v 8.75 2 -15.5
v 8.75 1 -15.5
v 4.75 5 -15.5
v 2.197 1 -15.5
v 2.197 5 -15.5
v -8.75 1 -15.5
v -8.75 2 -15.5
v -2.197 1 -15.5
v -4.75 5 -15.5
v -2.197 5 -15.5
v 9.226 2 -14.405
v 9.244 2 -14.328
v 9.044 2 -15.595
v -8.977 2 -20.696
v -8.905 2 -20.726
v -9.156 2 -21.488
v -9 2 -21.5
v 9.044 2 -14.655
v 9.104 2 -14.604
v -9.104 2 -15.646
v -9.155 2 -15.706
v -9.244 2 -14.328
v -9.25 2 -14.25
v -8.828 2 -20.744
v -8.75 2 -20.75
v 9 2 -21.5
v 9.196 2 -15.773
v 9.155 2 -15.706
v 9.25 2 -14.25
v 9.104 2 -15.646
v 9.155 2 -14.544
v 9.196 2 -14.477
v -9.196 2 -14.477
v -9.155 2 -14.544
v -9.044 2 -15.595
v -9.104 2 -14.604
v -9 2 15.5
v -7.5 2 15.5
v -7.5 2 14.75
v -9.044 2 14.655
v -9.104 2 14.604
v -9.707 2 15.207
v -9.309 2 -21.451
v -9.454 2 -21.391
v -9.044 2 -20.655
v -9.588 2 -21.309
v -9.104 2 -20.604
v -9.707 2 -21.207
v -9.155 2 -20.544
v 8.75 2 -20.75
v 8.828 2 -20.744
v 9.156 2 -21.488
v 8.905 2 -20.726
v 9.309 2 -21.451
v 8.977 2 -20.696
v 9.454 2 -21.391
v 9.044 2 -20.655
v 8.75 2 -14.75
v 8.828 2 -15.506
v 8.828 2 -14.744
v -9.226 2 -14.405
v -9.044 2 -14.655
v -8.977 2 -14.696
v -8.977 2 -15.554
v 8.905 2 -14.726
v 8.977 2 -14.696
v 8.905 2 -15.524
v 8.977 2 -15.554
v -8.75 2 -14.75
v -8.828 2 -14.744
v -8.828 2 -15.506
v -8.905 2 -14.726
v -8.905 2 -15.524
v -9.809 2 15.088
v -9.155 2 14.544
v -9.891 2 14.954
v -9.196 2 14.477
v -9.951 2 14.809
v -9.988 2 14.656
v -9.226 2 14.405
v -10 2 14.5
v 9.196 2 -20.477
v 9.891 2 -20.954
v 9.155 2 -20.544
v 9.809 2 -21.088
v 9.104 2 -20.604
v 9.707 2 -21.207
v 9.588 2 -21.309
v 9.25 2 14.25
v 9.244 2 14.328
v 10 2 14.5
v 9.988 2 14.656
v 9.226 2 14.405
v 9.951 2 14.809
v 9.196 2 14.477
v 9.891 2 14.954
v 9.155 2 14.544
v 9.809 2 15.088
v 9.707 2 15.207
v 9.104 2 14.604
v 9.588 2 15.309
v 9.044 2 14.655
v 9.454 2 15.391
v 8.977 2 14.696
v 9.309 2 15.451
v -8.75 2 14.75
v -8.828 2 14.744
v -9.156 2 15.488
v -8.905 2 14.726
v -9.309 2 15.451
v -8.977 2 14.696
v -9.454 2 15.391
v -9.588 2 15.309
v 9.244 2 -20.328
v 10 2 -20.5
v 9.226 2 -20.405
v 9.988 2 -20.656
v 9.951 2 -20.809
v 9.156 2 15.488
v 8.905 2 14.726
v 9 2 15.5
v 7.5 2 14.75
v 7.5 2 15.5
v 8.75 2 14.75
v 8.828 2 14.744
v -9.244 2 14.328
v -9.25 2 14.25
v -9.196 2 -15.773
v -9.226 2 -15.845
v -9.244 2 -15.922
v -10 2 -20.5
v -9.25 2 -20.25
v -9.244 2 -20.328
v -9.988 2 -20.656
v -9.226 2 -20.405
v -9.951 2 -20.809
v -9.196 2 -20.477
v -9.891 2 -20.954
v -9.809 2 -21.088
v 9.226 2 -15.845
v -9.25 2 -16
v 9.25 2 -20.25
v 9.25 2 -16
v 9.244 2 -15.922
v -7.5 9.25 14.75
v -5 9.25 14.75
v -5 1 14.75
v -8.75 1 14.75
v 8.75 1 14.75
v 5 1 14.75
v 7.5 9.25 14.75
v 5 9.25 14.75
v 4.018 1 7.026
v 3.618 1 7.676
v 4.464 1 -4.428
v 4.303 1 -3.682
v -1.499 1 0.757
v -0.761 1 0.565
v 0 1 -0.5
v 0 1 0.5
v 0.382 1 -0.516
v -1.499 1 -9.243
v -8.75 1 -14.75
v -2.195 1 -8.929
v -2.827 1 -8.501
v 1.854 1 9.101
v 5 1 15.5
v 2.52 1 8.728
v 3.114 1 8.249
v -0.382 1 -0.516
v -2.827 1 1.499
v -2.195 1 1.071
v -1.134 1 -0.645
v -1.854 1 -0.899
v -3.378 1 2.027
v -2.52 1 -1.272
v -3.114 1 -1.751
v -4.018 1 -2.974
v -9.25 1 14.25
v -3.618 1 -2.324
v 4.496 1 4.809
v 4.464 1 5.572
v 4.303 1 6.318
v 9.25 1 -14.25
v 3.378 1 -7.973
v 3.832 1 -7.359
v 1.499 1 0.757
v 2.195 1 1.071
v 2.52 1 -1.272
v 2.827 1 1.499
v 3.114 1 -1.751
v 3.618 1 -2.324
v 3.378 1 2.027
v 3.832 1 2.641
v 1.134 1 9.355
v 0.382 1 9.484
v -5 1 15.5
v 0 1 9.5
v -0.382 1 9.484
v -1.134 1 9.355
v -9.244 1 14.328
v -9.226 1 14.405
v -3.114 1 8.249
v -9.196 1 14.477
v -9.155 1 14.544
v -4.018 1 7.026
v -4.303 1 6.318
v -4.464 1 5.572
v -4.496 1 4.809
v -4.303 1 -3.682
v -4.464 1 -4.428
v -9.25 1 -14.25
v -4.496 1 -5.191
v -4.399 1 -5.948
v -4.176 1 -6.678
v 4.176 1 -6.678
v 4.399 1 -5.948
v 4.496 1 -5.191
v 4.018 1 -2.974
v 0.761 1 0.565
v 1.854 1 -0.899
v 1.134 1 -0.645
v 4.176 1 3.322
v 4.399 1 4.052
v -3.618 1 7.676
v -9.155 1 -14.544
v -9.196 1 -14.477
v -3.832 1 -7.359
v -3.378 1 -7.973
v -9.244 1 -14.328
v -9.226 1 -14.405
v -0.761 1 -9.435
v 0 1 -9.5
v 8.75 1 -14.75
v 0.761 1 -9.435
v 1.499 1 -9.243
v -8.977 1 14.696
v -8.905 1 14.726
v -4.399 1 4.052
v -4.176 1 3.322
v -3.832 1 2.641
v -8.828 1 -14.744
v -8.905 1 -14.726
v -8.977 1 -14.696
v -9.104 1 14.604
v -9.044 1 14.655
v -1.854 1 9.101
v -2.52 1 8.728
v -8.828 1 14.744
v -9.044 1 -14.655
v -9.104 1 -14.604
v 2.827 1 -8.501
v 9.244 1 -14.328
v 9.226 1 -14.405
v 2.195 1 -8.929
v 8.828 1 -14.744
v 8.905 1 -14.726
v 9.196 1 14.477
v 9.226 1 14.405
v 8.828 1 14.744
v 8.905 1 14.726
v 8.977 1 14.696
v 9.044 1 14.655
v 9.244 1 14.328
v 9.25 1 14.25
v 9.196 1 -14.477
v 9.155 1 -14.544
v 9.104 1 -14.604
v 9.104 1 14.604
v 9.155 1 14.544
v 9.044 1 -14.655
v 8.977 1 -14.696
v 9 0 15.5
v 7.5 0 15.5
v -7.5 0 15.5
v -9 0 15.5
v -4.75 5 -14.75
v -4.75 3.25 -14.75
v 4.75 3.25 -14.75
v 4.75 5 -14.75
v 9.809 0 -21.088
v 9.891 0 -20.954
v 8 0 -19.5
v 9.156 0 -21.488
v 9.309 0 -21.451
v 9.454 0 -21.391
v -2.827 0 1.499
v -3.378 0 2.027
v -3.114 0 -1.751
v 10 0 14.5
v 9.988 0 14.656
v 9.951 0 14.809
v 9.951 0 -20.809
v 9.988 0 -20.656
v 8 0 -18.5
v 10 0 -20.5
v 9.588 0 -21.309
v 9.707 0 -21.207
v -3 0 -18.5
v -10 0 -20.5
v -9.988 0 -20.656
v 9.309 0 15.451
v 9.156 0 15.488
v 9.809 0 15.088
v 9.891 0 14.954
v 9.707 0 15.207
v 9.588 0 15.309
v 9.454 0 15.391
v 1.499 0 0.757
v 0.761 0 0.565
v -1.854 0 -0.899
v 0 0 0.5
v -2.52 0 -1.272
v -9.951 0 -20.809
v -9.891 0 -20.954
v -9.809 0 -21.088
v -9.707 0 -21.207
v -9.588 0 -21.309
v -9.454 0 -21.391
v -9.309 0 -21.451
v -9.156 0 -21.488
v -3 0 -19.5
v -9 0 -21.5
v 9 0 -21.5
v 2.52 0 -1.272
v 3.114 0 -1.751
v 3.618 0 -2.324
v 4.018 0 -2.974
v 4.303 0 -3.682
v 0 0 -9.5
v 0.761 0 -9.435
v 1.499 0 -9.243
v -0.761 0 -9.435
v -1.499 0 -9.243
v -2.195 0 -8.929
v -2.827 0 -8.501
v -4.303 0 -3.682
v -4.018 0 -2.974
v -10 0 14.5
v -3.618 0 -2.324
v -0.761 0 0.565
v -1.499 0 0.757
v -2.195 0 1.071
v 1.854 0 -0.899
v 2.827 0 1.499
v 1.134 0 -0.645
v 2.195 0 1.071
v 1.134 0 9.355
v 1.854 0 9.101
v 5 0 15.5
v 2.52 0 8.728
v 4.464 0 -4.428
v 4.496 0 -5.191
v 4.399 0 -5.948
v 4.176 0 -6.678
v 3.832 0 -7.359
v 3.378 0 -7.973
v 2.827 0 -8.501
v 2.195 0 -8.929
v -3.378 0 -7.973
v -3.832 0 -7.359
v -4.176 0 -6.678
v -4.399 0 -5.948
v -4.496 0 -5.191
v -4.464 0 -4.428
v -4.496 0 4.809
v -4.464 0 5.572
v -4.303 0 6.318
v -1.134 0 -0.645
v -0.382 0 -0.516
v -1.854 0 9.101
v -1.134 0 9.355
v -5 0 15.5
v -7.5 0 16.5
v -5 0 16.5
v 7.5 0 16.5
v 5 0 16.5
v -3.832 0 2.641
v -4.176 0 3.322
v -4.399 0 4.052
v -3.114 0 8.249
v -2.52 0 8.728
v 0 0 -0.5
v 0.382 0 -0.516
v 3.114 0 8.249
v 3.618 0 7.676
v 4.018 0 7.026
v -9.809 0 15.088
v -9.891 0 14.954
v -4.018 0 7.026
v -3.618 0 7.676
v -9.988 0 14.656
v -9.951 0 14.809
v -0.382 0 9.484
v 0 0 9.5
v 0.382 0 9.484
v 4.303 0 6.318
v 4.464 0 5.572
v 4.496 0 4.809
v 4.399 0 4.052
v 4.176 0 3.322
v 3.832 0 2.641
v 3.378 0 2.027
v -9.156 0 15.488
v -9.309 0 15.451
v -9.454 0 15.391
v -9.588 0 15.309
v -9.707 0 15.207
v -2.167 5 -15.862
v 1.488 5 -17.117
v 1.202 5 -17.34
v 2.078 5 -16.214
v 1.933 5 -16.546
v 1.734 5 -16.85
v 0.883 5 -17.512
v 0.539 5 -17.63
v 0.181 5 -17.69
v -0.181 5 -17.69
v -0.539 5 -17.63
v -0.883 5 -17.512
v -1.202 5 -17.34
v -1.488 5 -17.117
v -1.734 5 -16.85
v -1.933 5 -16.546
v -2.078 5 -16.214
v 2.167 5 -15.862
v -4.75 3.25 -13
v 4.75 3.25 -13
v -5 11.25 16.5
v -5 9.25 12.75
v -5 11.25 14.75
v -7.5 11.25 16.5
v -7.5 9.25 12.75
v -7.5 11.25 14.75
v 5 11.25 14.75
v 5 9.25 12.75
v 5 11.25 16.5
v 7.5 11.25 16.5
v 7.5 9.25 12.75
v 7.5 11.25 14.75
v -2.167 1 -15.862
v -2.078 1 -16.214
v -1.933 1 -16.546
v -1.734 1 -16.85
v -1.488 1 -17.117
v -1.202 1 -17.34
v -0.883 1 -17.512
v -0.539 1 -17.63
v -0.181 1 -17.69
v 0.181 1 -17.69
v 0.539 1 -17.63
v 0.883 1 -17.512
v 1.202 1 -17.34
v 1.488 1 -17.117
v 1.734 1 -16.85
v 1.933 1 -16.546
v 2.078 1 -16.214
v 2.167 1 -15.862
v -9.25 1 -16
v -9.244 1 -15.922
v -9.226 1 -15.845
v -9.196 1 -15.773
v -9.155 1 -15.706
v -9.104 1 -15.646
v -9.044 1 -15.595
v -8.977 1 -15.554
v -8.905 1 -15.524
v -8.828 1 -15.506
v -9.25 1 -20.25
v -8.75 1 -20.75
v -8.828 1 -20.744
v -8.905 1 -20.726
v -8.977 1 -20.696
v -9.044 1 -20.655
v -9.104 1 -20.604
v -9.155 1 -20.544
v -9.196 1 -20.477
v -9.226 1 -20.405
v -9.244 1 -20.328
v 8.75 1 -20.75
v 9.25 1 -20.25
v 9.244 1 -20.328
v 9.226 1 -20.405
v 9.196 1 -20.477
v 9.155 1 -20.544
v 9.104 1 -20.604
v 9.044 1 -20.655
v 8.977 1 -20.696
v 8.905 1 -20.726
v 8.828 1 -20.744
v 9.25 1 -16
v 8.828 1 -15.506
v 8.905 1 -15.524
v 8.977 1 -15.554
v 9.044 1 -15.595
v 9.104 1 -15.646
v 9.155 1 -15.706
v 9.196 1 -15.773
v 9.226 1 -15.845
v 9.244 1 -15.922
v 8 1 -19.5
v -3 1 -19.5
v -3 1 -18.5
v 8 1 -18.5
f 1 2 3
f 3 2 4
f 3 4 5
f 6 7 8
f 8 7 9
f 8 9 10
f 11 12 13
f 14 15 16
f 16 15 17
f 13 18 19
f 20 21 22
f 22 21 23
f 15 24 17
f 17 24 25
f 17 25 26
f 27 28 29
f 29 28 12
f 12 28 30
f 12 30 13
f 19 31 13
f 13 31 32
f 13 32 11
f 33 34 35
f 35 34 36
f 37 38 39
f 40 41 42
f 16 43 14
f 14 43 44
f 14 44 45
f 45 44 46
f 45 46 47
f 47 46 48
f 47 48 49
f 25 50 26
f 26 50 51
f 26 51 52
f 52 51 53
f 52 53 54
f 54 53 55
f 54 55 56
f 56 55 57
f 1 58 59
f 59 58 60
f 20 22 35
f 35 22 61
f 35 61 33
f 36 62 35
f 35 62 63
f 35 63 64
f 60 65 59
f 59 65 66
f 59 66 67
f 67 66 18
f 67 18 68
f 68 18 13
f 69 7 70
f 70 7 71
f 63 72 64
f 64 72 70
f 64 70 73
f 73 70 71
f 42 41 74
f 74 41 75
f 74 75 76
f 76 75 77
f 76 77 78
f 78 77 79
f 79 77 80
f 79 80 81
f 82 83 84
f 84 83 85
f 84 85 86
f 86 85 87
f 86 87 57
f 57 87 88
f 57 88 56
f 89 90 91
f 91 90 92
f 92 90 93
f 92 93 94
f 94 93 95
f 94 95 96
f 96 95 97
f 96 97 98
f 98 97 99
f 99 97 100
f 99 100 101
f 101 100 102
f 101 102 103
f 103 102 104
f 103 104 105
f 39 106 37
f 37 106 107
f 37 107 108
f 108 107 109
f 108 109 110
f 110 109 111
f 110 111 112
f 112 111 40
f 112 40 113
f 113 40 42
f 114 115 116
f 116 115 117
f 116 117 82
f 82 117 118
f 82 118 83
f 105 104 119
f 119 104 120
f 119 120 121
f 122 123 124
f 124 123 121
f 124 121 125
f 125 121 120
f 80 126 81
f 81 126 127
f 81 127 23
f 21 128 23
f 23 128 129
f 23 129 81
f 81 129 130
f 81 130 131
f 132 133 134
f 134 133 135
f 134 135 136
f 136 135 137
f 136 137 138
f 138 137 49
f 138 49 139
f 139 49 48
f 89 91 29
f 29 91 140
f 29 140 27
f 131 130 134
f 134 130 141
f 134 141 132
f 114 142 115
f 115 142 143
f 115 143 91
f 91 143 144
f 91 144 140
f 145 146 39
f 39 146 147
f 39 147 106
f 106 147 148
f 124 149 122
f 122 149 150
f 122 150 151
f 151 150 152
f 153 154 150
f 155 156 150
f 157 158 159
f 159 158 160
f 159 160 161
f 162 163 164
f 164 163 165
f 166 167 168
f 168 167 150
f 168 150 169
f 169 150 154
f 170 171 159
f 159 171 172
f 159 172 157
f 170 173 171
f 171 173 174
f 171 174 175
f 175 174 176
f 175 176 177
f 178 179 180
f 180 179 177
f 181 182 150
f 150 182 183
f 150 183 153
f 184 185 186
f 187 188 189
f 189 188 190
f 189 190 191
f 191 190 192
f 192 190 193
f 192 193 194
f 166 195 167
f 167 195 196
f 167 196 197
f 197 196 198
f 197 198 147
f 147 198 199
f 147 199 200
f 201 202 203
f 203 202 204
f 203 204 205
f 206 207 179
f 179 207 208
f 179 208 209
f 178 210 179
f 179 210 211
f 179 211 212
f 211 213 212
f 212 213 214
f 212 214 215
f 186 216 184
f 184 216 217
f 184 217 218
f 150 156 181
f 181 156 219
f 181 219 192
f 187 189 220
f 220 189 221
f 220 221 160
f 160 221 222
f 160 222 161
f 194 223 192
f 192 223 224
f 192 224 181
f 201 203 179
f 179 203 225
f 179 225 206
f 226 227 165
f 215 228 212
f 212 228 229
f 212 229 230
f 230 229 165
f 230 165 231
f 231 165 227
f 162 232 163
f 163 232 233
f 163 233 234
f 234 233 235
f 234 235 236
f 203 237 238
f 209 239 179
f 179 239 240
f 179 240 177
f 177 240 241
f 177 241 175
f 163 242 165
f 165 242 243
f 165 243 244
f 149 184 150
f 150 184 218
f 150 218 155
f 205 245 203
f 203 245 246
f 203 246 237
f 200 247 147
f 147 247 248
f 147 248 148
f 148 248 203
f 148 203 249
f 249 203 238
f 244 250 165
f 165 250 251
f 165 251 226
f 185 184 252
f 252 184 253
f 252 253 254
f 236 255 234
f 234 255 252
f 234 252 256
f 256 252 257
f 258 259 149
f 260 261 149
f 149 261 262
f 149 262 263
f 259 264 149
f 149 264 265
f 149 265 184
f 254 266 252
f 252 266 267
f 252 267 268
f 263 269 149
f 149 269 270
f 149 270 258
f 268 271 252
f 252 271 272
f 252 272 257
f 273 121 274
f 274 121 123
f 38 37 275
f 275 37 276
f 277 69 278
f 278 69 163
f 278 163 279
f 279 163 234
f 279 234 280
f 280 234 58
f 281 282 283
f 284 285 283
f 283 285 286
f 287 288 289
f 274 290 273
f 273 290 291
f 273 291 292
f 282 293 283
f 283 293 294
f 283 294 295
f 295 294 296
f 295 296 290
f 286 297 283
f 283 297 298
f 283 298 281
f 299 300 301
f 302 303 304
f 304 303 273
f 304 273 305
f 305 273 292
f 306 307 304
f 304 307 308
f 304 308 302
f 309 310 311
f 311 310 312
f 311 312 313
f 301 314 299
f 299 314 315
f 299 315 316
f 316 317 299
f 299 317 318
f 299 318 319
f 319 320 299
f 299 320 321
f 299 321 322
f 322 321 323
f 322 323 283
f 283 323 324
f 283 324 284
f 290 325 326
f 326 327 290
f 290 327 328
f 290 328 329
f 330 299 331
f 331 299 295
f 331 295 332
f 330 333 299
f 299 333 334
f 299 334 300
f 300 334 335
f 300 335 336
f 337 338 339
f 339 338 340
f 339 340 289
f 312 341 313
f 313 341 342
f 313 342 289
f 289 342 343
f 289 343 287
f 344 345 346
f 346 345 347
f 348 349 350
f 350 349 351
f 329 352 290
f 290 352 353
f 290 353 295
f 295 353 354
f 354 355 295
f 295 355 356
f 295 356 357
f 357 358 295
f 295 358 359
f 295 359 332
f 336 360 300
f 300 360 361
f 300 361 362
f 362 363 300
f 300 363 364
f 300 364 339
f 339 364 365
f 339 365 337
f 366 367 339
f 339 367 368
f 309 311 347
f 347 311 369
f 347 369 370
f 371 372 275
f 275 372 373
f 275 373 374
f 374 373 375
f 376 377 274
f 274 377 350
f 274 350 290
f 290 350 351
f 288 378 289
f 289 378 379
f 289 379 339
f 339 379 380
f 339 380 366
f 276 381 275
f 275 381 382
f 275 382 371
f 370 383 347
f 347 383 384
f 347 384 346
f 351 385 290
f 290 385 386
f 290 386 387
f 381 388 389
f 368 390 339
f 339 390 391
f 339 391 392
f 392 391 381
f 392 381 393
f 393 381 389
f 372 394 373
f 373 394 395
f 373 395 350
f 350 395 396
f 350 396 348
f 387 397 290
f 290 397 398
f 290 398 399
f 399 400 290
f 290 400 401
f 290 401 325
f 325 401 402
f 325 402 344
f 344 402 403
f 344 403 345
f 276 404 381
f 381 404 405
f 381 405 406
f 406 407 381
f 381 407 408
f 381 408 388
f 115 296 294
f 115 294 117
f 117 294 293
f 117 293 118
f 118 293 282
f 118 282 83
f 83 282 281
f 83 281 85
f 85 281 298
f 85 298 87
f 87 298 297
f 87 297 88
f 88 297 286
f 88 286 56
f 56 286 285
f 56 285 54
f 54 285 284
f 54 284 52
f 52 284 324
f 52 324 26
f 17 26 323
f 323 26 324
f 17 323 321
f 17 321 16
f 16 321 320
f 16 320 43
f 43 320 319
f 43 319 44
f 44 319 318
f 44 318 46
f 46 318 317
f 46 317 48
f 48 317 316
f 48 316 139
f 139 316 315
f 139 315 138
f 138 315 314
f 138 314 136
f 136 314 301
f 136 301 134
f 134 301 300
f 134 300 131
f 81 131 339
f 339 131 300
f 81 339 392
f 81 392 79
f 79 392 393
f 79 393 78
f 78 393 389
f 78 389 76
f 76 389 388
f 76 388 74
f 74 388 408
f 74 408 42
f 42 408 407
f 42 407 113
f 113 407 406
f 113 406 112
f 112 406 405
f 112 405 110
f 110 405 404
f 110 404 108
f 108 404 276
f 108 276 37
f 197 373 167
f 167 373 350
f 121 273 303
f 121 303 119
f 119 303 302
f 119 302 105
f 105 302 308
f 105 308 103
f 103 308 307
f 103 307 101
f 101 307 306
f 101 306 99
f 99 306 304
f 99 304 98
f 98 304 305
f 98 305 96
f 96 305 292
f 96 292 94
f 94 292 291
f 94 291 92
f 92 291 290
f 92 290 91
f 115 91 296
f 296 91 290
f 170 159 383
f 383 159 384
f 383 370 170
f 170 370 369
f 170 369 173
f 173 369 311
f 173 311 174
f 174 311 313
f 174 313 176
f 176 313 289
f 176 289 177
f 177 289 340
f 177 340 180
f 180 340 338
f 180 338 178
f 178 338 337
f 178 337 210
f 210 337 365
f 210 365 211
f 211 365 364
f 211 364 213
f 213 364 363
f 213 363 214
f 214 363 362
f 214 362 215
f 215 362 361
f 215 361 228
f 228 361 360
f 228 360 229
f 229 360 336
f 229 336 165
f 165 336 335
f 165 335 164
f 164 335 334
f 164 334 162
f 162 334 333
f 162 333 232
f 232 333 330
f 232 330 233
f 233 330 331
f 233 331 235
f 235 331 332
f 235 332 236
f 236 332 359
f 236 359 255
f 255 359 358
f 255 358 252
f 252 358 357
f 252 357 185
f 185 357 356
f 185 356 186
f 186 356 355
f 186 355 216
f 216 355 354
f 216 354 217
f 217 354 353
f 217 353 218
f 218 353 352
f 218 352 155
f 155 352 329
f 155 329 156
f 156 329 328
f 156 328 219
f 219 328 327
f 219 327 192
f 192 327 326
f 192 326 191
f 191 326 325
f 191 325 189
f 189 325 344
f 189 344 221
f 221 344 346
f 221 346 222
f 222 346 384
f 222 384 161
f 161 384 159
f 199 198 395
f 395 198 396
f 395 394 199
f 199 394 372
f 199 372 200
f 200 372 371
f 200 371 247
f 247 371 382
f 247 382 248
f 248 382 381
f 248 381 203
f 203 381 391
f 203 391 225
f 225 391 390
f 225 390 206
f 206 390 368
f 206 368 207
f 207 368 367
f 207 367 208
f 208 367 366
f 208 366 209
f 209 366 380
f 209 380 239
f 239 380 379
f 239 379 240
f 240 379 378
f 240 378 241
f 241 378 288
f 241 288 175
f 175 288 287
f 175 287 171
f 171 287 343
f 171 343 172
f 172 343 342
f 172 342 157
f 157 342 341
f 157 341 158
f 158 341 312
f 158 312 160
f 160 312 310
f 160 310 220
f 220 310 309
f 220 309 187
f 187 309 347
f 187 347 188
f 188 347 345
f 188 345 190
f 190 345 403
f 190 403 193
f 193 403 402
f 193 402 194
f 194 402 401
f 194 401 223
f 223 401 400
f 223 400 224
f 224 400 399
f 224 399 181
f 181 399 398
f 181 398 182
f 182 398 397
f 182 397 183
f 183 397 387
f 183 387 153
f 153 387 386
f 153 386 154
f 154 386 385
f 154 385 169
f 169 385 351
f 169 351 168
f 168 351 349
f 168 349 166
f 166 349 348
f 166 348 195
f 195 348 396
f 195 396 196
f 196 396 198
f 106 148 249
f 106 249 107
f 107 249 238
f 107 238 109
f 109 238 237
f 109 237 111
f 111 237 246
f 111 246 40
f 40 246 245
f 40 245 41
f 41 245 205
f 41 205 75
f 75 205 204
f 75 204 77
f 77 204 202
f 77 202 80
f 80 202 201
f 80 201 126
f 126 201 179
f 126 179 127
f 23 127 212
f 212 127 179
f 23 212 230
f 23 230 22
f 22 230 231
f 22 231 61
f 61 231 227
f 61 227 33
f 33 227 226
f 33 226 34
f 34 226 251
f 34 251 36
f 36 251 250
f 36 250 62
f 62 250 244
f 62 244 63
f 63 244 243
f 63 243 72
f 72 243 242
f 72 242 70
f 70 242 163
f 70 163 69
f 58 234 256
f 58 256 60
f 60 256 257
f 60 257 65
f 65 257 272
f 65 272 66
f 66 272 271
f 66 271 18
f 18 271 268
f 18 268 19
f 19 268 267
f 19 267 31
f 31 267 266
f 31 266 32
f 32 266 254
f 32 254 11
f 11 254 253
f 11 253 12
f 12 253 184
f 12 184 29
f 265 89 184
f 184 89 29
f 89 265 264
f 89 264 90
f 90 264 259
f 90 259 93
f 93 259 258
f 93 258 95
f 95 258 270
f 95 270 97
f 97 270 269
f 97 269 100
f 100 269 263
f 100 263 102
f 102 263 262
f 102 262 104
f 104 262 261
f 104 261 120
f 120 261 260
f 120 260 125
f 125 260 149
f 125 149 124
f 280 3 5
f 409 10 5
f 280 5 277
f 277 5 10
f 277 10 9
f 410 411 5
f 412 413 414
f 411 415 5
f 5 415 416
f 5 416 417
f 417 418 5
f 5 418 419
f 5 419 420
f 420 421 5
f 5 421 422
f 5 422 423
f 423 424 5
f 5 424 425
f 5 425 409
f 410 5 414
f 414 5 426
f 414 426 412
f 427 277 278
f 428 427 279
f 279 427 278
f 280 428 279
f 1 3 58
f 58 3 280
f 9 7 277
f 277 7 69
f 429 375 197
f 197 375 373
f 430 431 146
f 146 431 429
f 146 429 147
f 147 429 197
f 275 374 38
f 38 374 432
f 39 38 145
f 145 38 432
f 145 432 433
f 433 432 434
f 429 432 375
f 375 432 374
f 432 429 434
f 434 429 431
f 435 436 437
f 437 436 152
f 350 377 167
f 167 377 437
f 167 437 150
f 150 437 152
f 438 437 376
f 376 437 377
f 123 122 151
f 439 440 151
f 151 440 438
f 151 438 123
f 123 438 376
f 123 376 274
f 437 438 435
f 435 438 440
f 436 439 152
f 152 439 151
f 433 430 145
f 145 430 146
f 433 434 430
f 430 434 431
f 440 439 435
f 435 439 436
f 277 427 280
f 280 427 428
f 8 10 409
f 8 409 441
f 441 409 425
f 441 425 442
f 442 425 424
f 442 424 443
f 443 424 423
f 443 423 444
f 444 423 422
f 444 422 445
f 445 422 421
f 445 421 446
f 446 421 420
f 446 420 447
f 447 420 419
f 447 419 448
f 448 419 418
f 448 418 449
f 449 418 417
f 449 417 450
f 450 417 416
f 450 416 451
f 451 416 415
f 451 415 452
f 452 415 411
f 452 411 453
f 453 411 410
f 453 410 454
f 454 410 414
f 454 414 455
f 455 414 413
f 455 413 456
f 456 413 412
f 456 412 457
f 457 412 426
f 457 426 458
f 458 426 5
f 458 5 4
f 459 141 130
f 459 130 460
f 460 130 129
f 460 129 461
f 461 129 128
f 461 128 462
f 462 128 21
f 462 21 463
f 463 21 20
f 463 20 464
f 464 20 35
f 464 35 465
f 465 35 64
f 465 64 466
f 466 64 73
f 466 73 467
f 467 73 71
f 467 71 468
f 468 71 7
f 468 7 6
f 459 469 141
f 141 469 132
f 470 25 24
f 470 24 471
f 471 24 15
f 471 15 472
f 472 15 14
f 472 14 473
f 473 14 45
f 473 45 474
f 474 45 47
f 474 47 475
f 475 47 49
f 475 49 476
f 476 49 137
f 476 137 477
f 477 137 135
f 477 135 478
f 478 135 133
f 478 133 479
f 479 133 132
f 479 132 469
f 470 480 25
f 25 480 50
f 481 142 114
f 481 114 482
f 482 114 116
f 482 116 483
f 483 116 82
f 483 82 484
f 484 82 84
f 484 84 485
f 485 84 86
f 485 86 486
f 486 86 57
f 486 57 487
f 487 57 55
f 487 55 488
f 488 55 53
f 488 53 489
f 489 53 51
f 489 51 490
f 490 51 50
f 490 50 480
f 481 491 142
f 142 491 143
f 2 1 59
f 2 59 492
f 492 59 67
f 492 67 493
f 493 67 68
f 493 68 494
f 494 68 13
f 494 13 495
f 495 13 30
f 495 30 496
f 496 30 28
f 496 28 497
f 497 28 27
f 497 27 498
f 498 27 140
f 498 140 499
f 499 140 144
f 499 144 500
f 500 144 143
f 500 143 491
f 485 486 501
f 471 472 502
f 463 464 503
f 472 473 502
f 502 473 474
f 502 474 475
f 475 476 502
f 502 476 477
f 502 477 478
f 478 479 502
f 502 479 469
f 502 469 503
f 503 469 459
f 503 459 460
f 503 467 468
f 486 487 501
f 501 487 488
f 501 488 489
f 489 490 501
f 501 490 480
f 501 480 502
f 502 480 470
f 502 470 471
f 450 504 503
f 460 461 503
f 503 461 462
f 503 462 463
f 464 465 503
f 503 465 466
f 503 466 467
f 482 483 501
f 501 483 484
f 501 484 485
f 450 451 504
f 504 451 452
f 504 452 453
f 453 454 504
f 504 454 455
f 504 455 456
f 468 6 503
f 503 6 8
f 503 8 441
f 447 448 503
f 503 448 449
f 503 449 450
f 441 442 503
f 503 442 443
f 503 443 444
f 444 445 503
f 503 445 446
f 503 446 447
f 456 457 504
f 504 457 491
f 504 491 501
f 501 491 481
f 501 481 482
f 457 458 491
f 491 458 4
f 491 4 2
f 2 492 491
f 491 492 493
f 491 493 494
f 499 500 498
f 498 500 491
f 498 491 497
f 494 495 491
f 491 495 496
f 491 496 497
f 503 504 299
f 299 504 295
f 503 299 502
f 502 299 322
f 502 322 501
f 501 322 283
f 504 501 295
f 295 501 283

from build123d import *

# Parameters (mm, degrees)
BOSS_EXTRUDE1_DEPTH  = 1
PCB_HOLDER_52_R      = 4.5
BOSS_EXTRUDE2_DEPTH  = 1
BOSS_EXTRUDE3_DEPTH  = 2
PCB_HOLDER_57_W      = 17.5
PCB_HOLDER_57_H      = 0.75
BOSS_EXTRUDE7_DEPTH  = 5
SKETCH6_W            = 9.5
SKETCH6_H            = 1.75
BOSS_EXTRUDE9_DEPTH  = 1.75
CUT_EXTRUDE7_DEPTH   = 0.75
PCB_HOLDER_58_W      = 2.5
PCB_HOLDER_58_H      = 1
PCB_HOLDER_58_H_2    = 0.75
BOSS_EXTRUDE10_DEPTH = 11.25
SKETCH10_W           = 2.5
SKETCH10_H           = 2
BOSS_EXTRUDE11_DEPTH = 2
CUT_EXTRUDE8_DEPTH   = 15
CUT_EXTRUDE12_DEPTH  = 9.5
CUT_EXTRUDE17_DEPTH  = 1
BOSS_EXTRUDE12_START = 3
BOSS_EXTRUDE12_DEPTH = 3
SKETCH13_4_W         = 11
SKETCH13_4_H         = 1
CUT_EXTRUDE18_DEPTH  = 3


with BuildPart() as part:
    # PCB holder → Boss-Extrude1 (new body)
    with BuildSketch(Plane(origin=(0, 0, 0), x_dir=(1, 0, 0), z_dir=(0, 1, 0))):
        with BuildLine():
            Line((9, 21.5), (-9, 21.5))
            ThreePointArc((-9, 21.5), (-9.707106781, 21.207106781), (-10, 20.5))
            Line((-10, 20.5), (-10, -14.5))
            ThreePointArc((-10, -14.5), (-9.707106781, -15.207106781), (-9, -15.5))
            Line((-9, -15.5), (9, -15.5))
            ThreePointArc((9, -15.5), (9.707106781, -15.207106781), (10, -14.5))
            Line((10, -14.5), (10, 20.5))
            ThreePointArc((10, 20.5), (9.707106781, 21.207106781), (9, 21.5))
        make_face()
        with BuildLine():
            Line((9.25, 14.25), (9.25, -14.25))
            ThreePointArc((9.25, -14.25), (9.103553391, -14.603553391), (8.75, -14.75))
            Line((8.75, -14.75), (-8.75, -14.75))
            ThreePointArc((-8.75, -14.75), (-9.103553391, -14.603553391), (-9.25, -14.25))
            Line((-9.25, -14.25), (-9.25, 14.25))
            ThreePointArc((-9.25, 14.25), (-9.103553391, 14.603553391), (-8.75, 14.75))
            Line((-8.75, 14.75), (8.75, 14.75))
            ThreePointArc((8.75, 14.75), (9.103553391, 14.603553391), (9.25, 14.25))
        make_face(mode=Mode.SUBTRACT)
    extrude(amount=BOSS_EXTRUDE1_DEPTH)

    # PCB holder<52> → Boss-Extrude2 (add)
    with BuildSketch(Plane(origin=(0, 0, 0), x_dir=(1, 0, 0), z_dir=(0, 1, 0))):
        with BuildLine():
            Line((-9.25, 14.25), (-9.25, -14.25))
            ThreePointArc((-9.25, -14.25), (-9.103553391, -14.603553391), (-8.75, -14.75))
            Line((-8.75, -14.75), (8.75, -14.75))
            ThreePointArc((8.75, -14.75), (9.103553391, -14.603553391), (9.25, -14.25))
            Line((9.25, -14.25), (9.25, 14.25))
            ThreePointArc((9.25, 14.25), (9.103553391, 14.603553391), (8.75, 14.75))
            Line((8.75, 14.75), (-8.75, 14.75))
            ThreePointArc((-8.75, 14.75), (-9.103553391, 14.603553391), (-9.25, 14.25))
        make_face()
        with Locations(Location((0, -5, 0), (0, 0, 270))):
            Circle(PCB_HOLDER_52_R, mode=Mode.SUBTRACT)
        with Locations(Location((0, 5, 0), (0, 0, 270))):
            Circle(PCB_HOLDER_52_R, mode=Mode.SUBTRACT)
    extrude(amount=BOSS_EXTRUDE2_DEPTH)

    # PCB holder<55> → Boss-Extrude3 (add)
    with BuildSketch(Plane(origin=(0, 0, 0), x_dir=(1, 0, 0), z_dir=(0, 1, 0))):
        with BuildLine():
            Line((8.75, 15.5), (8.75, 14.75))
            ThreePointArc((8.75, 14.75), (9.103553391, 14.603553391), (9.25, 14.25))
            Line((9.25, 14.25), (9.25, -14.25))
            ThreePointArc((9.25, -14.25), (9.103553391, -14.603553391), (8.75, -14.75))
            Line((8.75, -14.75), (7.5, -14.75))
            Line((7.5, -14.75), (7.5, -15.5))
            Line((7.5, -15.5), (9, -15.5))
            ThreePointArc((9, -15.5), (9.707106781, -15.207106781), (10, -14.5))
            Line((10, -14.5), (10, 20.5))
            ThreePointArc((10, 20.5), (9.707106781, 21.207106781), (9, 21.5))
            Line((9, 21.5), (-9, 21.5))
            ThreePointArc((-9, 21.5), (-9.707106781, 21.207106781), (-10, 20.5))
            Line((-10, 20.5), (-10, -14.5))
            ThreePointArc((-10, -14.5), (-9.707106781, -15.207106781), (-9, -15.5))
            Line((-9, -15.5), (-7.5, -15.5))
            Line((-7.5, -15.5), (-7.5, -14.75))
            Line((-7.5, -14.75), (-8.75, -14.75))
            ThreePointArc((-8.75, -14.75), (-9.103553391, -14.603553391), (-9.25, -14.25))
            Line((-9.25, -14.25), (-9.25, 14.25))
            ThreePointArc((-9.25, 14.25), (-9.103553391, 14.603553391), (-8.75, 14.75))
            Line((-8.75, 14.75), (-8.75, 15.5))
            Line((-8.75, 15.5), (8.75, 15.5))
        make_face()
    extrude(amount=BOSS_EXTRUDE3_DEPTH)

    # PCB holder<57> → Boss-Extrude7 (add)
    with BuildSketch(Plane(origin=(0, 0, 0), x_dir=(1, 0, 0), z_dir=(0, 1, 0))):
        with Locations((0, 15.125)):
            Rectangle(PCB_HOLDER_57_W, PCB_HOLDER_57_H)
    extrude(amount=BOSS_EXTRUDE7_DEPTH)

    # Sketch6 → Boss-Extrude9 (add)
    with BuildSketch(Plane.XY.offset(-14.75)):
        with Locations((0, 4.125)):
            Rectangle(SKETCH6_W, SKETCH6_H)
    extrude(amount=BOSS_EXTRUDE9_DEPTH)

    # Sketch8 → Cut-Extrude7 (cut)
    with BuildSketch(Plane.XY.offset(-14.75)):
        Polygon((4.75, 5), (8.75, 2), (8.75, 5), align=None)
        Polygon((-4.75, 5), (-8.75, 2), (-8.75, 5), align=None)
    extrude(amount=-CUT_EXTRUDE7_DEPTH, mode=Mode.SUBTRACT)

    # PCB holder<58> → Boss-Extrude10 (add)
    with BuildSketch(Plane(origin=(0, 0, 0), x_dir=(1, 0, 0), z_dir=(0, 1, 0))):
        with Locations((-6.25, -16)):
            Rectangle(PCB_HOLDER_58_W, PCB_HOLDER_58_H)
        with Locations((-6.25, -15.125)):
            Rectangle(PCB_HOLDER_58_W, PCB_HOLDER_58_H_2)
        with Locations((6.25, -16)):
            Rectangle(PCB_HOLDER_58_W, PCB_HOLDER_58_H)
        with Locations((6.25, -15.125)):
            Rectangle(PCB_HOLDER_58_W, PCB_HOLDER_58_H_2)
    extrude(amount=BOSS_EXTRUDE10_DEPTH)

    # Sketch10 → Boss-Extrude11 (add)
    with BuildSketch(Plane(origin=(0, 0, 14.75), x_dir=(-1, 0, 0), z_dir=(0, 0, -1))):
        with Locations((-6.25, 10.25)):
            Rectangle(SKETCH10_W, SKETCH10_H)
        with Locations((6.25, 10.25)):
            Rectangle(SKETCH10_W, SKETCH10_H)
    extrude(amount=BOSS_EXTRUDE11_DEPTH)

    # Sketch11 → Cut-Extrude8 (cut)
    with BuildSketch(Plane(origin=(7.5, 0, 0), x_dir=(0, 0, -1), z_dir=(1, 0, 0))):
        Polygon((-14.75, 11.25), (-12.75, 9.25), (-12.75, 11.25), align=None)
    extrude(amount=-CUT_EXTRUDE8_DEPTH, mode=Mode.SUBTRACT)

    # Sketch7 → Cut-Extrude12 (cut)
    with BuildSketch(Plane(origin=(4.75, 0, 0), x_dir=(0, 0, -1), z_dir=(1, 0, 0))):
        Polygon((13, 3.25), (14.75, 5), (13, 5), align=None)
    extrude(amount=-CUT_EXTRUDE12_DEPTH, mode=Mode.SUBTRACT)

    # Sketch13 → Cut-Extrude17 (cut)
    with BuildSketch(Plane(origin=(0, 2, 0), x_dir=(1, 0, 0), z_dir=(0, 1, 0))):
        with BuildLine():
            Line((8.75, 20.75), (-8.75, 20.75))
            ThreePointArc((-8.75, 20.75), (-9.103553391, 20.603553391), (-9.25, 20.25))
            Line((-9.25, 20.25), (-9.25, 16))
            ThreePointArc((-9.25, 16), (-9.103553391, 15.646446609), (-8.75, 15.5))
            Line((-8.75, 15.5), (-2.197469764, 15.5))
            ThreePointArc((-2.197469764, 15.5), (0, 17.697469764), (2.197469764, 15.5))
            Line((2.197469764, 15.5), (8.75, 15.5))
            ThreePointArc((8.75, 15.5), (9.103553391, 15.646446609), (9.25, 16))
            Line((9.25, 16), (9.25, 20.25))
            ThreePointArc((9.25, 20.25), (9.103553391, 20.603553391), (8.75, 20.75))
        make_face()
    extrude(amount=-CUT_EXTRUDE17_DEPTH, mode=Mode.SUBTRACT)

    # Sketch13<3> → Boss-Extrude12 (add)
    with BuildSketch(Plane(origin=(0, 2, 0), x_dir=(1, 0, 0), z_dir=(0, 1, 0)).offset(BOSS_EXTRUDE12_START)):
        with BuildLine():
            ThreePointArc((2.197469764, 15.5), (0, 17.697469764), (-2.197469764, 15.5))
            Line((-2.197469764, 15.5), (2.197469764, 15.5))
        make_face()
    extrude(amount=-BOSS_EXTRUDE12_DEPTH)

    # Sketch13<4> → Cut-Extrude18 (cut)
    with BuildSketch(Plane(origin=(0, 2, 0), x_dir=(1, 0, 0), z_dir=(0, 1, 0))):
        with Locations((2.5, 19)):
            Rectangle(SKETCH13_4_W, SKETCH13_4_H)
    extrude(amount=-CUT_EXTRUDE18_DEPTH, mode=Mode.SUBTRACT)


solid = part.part
